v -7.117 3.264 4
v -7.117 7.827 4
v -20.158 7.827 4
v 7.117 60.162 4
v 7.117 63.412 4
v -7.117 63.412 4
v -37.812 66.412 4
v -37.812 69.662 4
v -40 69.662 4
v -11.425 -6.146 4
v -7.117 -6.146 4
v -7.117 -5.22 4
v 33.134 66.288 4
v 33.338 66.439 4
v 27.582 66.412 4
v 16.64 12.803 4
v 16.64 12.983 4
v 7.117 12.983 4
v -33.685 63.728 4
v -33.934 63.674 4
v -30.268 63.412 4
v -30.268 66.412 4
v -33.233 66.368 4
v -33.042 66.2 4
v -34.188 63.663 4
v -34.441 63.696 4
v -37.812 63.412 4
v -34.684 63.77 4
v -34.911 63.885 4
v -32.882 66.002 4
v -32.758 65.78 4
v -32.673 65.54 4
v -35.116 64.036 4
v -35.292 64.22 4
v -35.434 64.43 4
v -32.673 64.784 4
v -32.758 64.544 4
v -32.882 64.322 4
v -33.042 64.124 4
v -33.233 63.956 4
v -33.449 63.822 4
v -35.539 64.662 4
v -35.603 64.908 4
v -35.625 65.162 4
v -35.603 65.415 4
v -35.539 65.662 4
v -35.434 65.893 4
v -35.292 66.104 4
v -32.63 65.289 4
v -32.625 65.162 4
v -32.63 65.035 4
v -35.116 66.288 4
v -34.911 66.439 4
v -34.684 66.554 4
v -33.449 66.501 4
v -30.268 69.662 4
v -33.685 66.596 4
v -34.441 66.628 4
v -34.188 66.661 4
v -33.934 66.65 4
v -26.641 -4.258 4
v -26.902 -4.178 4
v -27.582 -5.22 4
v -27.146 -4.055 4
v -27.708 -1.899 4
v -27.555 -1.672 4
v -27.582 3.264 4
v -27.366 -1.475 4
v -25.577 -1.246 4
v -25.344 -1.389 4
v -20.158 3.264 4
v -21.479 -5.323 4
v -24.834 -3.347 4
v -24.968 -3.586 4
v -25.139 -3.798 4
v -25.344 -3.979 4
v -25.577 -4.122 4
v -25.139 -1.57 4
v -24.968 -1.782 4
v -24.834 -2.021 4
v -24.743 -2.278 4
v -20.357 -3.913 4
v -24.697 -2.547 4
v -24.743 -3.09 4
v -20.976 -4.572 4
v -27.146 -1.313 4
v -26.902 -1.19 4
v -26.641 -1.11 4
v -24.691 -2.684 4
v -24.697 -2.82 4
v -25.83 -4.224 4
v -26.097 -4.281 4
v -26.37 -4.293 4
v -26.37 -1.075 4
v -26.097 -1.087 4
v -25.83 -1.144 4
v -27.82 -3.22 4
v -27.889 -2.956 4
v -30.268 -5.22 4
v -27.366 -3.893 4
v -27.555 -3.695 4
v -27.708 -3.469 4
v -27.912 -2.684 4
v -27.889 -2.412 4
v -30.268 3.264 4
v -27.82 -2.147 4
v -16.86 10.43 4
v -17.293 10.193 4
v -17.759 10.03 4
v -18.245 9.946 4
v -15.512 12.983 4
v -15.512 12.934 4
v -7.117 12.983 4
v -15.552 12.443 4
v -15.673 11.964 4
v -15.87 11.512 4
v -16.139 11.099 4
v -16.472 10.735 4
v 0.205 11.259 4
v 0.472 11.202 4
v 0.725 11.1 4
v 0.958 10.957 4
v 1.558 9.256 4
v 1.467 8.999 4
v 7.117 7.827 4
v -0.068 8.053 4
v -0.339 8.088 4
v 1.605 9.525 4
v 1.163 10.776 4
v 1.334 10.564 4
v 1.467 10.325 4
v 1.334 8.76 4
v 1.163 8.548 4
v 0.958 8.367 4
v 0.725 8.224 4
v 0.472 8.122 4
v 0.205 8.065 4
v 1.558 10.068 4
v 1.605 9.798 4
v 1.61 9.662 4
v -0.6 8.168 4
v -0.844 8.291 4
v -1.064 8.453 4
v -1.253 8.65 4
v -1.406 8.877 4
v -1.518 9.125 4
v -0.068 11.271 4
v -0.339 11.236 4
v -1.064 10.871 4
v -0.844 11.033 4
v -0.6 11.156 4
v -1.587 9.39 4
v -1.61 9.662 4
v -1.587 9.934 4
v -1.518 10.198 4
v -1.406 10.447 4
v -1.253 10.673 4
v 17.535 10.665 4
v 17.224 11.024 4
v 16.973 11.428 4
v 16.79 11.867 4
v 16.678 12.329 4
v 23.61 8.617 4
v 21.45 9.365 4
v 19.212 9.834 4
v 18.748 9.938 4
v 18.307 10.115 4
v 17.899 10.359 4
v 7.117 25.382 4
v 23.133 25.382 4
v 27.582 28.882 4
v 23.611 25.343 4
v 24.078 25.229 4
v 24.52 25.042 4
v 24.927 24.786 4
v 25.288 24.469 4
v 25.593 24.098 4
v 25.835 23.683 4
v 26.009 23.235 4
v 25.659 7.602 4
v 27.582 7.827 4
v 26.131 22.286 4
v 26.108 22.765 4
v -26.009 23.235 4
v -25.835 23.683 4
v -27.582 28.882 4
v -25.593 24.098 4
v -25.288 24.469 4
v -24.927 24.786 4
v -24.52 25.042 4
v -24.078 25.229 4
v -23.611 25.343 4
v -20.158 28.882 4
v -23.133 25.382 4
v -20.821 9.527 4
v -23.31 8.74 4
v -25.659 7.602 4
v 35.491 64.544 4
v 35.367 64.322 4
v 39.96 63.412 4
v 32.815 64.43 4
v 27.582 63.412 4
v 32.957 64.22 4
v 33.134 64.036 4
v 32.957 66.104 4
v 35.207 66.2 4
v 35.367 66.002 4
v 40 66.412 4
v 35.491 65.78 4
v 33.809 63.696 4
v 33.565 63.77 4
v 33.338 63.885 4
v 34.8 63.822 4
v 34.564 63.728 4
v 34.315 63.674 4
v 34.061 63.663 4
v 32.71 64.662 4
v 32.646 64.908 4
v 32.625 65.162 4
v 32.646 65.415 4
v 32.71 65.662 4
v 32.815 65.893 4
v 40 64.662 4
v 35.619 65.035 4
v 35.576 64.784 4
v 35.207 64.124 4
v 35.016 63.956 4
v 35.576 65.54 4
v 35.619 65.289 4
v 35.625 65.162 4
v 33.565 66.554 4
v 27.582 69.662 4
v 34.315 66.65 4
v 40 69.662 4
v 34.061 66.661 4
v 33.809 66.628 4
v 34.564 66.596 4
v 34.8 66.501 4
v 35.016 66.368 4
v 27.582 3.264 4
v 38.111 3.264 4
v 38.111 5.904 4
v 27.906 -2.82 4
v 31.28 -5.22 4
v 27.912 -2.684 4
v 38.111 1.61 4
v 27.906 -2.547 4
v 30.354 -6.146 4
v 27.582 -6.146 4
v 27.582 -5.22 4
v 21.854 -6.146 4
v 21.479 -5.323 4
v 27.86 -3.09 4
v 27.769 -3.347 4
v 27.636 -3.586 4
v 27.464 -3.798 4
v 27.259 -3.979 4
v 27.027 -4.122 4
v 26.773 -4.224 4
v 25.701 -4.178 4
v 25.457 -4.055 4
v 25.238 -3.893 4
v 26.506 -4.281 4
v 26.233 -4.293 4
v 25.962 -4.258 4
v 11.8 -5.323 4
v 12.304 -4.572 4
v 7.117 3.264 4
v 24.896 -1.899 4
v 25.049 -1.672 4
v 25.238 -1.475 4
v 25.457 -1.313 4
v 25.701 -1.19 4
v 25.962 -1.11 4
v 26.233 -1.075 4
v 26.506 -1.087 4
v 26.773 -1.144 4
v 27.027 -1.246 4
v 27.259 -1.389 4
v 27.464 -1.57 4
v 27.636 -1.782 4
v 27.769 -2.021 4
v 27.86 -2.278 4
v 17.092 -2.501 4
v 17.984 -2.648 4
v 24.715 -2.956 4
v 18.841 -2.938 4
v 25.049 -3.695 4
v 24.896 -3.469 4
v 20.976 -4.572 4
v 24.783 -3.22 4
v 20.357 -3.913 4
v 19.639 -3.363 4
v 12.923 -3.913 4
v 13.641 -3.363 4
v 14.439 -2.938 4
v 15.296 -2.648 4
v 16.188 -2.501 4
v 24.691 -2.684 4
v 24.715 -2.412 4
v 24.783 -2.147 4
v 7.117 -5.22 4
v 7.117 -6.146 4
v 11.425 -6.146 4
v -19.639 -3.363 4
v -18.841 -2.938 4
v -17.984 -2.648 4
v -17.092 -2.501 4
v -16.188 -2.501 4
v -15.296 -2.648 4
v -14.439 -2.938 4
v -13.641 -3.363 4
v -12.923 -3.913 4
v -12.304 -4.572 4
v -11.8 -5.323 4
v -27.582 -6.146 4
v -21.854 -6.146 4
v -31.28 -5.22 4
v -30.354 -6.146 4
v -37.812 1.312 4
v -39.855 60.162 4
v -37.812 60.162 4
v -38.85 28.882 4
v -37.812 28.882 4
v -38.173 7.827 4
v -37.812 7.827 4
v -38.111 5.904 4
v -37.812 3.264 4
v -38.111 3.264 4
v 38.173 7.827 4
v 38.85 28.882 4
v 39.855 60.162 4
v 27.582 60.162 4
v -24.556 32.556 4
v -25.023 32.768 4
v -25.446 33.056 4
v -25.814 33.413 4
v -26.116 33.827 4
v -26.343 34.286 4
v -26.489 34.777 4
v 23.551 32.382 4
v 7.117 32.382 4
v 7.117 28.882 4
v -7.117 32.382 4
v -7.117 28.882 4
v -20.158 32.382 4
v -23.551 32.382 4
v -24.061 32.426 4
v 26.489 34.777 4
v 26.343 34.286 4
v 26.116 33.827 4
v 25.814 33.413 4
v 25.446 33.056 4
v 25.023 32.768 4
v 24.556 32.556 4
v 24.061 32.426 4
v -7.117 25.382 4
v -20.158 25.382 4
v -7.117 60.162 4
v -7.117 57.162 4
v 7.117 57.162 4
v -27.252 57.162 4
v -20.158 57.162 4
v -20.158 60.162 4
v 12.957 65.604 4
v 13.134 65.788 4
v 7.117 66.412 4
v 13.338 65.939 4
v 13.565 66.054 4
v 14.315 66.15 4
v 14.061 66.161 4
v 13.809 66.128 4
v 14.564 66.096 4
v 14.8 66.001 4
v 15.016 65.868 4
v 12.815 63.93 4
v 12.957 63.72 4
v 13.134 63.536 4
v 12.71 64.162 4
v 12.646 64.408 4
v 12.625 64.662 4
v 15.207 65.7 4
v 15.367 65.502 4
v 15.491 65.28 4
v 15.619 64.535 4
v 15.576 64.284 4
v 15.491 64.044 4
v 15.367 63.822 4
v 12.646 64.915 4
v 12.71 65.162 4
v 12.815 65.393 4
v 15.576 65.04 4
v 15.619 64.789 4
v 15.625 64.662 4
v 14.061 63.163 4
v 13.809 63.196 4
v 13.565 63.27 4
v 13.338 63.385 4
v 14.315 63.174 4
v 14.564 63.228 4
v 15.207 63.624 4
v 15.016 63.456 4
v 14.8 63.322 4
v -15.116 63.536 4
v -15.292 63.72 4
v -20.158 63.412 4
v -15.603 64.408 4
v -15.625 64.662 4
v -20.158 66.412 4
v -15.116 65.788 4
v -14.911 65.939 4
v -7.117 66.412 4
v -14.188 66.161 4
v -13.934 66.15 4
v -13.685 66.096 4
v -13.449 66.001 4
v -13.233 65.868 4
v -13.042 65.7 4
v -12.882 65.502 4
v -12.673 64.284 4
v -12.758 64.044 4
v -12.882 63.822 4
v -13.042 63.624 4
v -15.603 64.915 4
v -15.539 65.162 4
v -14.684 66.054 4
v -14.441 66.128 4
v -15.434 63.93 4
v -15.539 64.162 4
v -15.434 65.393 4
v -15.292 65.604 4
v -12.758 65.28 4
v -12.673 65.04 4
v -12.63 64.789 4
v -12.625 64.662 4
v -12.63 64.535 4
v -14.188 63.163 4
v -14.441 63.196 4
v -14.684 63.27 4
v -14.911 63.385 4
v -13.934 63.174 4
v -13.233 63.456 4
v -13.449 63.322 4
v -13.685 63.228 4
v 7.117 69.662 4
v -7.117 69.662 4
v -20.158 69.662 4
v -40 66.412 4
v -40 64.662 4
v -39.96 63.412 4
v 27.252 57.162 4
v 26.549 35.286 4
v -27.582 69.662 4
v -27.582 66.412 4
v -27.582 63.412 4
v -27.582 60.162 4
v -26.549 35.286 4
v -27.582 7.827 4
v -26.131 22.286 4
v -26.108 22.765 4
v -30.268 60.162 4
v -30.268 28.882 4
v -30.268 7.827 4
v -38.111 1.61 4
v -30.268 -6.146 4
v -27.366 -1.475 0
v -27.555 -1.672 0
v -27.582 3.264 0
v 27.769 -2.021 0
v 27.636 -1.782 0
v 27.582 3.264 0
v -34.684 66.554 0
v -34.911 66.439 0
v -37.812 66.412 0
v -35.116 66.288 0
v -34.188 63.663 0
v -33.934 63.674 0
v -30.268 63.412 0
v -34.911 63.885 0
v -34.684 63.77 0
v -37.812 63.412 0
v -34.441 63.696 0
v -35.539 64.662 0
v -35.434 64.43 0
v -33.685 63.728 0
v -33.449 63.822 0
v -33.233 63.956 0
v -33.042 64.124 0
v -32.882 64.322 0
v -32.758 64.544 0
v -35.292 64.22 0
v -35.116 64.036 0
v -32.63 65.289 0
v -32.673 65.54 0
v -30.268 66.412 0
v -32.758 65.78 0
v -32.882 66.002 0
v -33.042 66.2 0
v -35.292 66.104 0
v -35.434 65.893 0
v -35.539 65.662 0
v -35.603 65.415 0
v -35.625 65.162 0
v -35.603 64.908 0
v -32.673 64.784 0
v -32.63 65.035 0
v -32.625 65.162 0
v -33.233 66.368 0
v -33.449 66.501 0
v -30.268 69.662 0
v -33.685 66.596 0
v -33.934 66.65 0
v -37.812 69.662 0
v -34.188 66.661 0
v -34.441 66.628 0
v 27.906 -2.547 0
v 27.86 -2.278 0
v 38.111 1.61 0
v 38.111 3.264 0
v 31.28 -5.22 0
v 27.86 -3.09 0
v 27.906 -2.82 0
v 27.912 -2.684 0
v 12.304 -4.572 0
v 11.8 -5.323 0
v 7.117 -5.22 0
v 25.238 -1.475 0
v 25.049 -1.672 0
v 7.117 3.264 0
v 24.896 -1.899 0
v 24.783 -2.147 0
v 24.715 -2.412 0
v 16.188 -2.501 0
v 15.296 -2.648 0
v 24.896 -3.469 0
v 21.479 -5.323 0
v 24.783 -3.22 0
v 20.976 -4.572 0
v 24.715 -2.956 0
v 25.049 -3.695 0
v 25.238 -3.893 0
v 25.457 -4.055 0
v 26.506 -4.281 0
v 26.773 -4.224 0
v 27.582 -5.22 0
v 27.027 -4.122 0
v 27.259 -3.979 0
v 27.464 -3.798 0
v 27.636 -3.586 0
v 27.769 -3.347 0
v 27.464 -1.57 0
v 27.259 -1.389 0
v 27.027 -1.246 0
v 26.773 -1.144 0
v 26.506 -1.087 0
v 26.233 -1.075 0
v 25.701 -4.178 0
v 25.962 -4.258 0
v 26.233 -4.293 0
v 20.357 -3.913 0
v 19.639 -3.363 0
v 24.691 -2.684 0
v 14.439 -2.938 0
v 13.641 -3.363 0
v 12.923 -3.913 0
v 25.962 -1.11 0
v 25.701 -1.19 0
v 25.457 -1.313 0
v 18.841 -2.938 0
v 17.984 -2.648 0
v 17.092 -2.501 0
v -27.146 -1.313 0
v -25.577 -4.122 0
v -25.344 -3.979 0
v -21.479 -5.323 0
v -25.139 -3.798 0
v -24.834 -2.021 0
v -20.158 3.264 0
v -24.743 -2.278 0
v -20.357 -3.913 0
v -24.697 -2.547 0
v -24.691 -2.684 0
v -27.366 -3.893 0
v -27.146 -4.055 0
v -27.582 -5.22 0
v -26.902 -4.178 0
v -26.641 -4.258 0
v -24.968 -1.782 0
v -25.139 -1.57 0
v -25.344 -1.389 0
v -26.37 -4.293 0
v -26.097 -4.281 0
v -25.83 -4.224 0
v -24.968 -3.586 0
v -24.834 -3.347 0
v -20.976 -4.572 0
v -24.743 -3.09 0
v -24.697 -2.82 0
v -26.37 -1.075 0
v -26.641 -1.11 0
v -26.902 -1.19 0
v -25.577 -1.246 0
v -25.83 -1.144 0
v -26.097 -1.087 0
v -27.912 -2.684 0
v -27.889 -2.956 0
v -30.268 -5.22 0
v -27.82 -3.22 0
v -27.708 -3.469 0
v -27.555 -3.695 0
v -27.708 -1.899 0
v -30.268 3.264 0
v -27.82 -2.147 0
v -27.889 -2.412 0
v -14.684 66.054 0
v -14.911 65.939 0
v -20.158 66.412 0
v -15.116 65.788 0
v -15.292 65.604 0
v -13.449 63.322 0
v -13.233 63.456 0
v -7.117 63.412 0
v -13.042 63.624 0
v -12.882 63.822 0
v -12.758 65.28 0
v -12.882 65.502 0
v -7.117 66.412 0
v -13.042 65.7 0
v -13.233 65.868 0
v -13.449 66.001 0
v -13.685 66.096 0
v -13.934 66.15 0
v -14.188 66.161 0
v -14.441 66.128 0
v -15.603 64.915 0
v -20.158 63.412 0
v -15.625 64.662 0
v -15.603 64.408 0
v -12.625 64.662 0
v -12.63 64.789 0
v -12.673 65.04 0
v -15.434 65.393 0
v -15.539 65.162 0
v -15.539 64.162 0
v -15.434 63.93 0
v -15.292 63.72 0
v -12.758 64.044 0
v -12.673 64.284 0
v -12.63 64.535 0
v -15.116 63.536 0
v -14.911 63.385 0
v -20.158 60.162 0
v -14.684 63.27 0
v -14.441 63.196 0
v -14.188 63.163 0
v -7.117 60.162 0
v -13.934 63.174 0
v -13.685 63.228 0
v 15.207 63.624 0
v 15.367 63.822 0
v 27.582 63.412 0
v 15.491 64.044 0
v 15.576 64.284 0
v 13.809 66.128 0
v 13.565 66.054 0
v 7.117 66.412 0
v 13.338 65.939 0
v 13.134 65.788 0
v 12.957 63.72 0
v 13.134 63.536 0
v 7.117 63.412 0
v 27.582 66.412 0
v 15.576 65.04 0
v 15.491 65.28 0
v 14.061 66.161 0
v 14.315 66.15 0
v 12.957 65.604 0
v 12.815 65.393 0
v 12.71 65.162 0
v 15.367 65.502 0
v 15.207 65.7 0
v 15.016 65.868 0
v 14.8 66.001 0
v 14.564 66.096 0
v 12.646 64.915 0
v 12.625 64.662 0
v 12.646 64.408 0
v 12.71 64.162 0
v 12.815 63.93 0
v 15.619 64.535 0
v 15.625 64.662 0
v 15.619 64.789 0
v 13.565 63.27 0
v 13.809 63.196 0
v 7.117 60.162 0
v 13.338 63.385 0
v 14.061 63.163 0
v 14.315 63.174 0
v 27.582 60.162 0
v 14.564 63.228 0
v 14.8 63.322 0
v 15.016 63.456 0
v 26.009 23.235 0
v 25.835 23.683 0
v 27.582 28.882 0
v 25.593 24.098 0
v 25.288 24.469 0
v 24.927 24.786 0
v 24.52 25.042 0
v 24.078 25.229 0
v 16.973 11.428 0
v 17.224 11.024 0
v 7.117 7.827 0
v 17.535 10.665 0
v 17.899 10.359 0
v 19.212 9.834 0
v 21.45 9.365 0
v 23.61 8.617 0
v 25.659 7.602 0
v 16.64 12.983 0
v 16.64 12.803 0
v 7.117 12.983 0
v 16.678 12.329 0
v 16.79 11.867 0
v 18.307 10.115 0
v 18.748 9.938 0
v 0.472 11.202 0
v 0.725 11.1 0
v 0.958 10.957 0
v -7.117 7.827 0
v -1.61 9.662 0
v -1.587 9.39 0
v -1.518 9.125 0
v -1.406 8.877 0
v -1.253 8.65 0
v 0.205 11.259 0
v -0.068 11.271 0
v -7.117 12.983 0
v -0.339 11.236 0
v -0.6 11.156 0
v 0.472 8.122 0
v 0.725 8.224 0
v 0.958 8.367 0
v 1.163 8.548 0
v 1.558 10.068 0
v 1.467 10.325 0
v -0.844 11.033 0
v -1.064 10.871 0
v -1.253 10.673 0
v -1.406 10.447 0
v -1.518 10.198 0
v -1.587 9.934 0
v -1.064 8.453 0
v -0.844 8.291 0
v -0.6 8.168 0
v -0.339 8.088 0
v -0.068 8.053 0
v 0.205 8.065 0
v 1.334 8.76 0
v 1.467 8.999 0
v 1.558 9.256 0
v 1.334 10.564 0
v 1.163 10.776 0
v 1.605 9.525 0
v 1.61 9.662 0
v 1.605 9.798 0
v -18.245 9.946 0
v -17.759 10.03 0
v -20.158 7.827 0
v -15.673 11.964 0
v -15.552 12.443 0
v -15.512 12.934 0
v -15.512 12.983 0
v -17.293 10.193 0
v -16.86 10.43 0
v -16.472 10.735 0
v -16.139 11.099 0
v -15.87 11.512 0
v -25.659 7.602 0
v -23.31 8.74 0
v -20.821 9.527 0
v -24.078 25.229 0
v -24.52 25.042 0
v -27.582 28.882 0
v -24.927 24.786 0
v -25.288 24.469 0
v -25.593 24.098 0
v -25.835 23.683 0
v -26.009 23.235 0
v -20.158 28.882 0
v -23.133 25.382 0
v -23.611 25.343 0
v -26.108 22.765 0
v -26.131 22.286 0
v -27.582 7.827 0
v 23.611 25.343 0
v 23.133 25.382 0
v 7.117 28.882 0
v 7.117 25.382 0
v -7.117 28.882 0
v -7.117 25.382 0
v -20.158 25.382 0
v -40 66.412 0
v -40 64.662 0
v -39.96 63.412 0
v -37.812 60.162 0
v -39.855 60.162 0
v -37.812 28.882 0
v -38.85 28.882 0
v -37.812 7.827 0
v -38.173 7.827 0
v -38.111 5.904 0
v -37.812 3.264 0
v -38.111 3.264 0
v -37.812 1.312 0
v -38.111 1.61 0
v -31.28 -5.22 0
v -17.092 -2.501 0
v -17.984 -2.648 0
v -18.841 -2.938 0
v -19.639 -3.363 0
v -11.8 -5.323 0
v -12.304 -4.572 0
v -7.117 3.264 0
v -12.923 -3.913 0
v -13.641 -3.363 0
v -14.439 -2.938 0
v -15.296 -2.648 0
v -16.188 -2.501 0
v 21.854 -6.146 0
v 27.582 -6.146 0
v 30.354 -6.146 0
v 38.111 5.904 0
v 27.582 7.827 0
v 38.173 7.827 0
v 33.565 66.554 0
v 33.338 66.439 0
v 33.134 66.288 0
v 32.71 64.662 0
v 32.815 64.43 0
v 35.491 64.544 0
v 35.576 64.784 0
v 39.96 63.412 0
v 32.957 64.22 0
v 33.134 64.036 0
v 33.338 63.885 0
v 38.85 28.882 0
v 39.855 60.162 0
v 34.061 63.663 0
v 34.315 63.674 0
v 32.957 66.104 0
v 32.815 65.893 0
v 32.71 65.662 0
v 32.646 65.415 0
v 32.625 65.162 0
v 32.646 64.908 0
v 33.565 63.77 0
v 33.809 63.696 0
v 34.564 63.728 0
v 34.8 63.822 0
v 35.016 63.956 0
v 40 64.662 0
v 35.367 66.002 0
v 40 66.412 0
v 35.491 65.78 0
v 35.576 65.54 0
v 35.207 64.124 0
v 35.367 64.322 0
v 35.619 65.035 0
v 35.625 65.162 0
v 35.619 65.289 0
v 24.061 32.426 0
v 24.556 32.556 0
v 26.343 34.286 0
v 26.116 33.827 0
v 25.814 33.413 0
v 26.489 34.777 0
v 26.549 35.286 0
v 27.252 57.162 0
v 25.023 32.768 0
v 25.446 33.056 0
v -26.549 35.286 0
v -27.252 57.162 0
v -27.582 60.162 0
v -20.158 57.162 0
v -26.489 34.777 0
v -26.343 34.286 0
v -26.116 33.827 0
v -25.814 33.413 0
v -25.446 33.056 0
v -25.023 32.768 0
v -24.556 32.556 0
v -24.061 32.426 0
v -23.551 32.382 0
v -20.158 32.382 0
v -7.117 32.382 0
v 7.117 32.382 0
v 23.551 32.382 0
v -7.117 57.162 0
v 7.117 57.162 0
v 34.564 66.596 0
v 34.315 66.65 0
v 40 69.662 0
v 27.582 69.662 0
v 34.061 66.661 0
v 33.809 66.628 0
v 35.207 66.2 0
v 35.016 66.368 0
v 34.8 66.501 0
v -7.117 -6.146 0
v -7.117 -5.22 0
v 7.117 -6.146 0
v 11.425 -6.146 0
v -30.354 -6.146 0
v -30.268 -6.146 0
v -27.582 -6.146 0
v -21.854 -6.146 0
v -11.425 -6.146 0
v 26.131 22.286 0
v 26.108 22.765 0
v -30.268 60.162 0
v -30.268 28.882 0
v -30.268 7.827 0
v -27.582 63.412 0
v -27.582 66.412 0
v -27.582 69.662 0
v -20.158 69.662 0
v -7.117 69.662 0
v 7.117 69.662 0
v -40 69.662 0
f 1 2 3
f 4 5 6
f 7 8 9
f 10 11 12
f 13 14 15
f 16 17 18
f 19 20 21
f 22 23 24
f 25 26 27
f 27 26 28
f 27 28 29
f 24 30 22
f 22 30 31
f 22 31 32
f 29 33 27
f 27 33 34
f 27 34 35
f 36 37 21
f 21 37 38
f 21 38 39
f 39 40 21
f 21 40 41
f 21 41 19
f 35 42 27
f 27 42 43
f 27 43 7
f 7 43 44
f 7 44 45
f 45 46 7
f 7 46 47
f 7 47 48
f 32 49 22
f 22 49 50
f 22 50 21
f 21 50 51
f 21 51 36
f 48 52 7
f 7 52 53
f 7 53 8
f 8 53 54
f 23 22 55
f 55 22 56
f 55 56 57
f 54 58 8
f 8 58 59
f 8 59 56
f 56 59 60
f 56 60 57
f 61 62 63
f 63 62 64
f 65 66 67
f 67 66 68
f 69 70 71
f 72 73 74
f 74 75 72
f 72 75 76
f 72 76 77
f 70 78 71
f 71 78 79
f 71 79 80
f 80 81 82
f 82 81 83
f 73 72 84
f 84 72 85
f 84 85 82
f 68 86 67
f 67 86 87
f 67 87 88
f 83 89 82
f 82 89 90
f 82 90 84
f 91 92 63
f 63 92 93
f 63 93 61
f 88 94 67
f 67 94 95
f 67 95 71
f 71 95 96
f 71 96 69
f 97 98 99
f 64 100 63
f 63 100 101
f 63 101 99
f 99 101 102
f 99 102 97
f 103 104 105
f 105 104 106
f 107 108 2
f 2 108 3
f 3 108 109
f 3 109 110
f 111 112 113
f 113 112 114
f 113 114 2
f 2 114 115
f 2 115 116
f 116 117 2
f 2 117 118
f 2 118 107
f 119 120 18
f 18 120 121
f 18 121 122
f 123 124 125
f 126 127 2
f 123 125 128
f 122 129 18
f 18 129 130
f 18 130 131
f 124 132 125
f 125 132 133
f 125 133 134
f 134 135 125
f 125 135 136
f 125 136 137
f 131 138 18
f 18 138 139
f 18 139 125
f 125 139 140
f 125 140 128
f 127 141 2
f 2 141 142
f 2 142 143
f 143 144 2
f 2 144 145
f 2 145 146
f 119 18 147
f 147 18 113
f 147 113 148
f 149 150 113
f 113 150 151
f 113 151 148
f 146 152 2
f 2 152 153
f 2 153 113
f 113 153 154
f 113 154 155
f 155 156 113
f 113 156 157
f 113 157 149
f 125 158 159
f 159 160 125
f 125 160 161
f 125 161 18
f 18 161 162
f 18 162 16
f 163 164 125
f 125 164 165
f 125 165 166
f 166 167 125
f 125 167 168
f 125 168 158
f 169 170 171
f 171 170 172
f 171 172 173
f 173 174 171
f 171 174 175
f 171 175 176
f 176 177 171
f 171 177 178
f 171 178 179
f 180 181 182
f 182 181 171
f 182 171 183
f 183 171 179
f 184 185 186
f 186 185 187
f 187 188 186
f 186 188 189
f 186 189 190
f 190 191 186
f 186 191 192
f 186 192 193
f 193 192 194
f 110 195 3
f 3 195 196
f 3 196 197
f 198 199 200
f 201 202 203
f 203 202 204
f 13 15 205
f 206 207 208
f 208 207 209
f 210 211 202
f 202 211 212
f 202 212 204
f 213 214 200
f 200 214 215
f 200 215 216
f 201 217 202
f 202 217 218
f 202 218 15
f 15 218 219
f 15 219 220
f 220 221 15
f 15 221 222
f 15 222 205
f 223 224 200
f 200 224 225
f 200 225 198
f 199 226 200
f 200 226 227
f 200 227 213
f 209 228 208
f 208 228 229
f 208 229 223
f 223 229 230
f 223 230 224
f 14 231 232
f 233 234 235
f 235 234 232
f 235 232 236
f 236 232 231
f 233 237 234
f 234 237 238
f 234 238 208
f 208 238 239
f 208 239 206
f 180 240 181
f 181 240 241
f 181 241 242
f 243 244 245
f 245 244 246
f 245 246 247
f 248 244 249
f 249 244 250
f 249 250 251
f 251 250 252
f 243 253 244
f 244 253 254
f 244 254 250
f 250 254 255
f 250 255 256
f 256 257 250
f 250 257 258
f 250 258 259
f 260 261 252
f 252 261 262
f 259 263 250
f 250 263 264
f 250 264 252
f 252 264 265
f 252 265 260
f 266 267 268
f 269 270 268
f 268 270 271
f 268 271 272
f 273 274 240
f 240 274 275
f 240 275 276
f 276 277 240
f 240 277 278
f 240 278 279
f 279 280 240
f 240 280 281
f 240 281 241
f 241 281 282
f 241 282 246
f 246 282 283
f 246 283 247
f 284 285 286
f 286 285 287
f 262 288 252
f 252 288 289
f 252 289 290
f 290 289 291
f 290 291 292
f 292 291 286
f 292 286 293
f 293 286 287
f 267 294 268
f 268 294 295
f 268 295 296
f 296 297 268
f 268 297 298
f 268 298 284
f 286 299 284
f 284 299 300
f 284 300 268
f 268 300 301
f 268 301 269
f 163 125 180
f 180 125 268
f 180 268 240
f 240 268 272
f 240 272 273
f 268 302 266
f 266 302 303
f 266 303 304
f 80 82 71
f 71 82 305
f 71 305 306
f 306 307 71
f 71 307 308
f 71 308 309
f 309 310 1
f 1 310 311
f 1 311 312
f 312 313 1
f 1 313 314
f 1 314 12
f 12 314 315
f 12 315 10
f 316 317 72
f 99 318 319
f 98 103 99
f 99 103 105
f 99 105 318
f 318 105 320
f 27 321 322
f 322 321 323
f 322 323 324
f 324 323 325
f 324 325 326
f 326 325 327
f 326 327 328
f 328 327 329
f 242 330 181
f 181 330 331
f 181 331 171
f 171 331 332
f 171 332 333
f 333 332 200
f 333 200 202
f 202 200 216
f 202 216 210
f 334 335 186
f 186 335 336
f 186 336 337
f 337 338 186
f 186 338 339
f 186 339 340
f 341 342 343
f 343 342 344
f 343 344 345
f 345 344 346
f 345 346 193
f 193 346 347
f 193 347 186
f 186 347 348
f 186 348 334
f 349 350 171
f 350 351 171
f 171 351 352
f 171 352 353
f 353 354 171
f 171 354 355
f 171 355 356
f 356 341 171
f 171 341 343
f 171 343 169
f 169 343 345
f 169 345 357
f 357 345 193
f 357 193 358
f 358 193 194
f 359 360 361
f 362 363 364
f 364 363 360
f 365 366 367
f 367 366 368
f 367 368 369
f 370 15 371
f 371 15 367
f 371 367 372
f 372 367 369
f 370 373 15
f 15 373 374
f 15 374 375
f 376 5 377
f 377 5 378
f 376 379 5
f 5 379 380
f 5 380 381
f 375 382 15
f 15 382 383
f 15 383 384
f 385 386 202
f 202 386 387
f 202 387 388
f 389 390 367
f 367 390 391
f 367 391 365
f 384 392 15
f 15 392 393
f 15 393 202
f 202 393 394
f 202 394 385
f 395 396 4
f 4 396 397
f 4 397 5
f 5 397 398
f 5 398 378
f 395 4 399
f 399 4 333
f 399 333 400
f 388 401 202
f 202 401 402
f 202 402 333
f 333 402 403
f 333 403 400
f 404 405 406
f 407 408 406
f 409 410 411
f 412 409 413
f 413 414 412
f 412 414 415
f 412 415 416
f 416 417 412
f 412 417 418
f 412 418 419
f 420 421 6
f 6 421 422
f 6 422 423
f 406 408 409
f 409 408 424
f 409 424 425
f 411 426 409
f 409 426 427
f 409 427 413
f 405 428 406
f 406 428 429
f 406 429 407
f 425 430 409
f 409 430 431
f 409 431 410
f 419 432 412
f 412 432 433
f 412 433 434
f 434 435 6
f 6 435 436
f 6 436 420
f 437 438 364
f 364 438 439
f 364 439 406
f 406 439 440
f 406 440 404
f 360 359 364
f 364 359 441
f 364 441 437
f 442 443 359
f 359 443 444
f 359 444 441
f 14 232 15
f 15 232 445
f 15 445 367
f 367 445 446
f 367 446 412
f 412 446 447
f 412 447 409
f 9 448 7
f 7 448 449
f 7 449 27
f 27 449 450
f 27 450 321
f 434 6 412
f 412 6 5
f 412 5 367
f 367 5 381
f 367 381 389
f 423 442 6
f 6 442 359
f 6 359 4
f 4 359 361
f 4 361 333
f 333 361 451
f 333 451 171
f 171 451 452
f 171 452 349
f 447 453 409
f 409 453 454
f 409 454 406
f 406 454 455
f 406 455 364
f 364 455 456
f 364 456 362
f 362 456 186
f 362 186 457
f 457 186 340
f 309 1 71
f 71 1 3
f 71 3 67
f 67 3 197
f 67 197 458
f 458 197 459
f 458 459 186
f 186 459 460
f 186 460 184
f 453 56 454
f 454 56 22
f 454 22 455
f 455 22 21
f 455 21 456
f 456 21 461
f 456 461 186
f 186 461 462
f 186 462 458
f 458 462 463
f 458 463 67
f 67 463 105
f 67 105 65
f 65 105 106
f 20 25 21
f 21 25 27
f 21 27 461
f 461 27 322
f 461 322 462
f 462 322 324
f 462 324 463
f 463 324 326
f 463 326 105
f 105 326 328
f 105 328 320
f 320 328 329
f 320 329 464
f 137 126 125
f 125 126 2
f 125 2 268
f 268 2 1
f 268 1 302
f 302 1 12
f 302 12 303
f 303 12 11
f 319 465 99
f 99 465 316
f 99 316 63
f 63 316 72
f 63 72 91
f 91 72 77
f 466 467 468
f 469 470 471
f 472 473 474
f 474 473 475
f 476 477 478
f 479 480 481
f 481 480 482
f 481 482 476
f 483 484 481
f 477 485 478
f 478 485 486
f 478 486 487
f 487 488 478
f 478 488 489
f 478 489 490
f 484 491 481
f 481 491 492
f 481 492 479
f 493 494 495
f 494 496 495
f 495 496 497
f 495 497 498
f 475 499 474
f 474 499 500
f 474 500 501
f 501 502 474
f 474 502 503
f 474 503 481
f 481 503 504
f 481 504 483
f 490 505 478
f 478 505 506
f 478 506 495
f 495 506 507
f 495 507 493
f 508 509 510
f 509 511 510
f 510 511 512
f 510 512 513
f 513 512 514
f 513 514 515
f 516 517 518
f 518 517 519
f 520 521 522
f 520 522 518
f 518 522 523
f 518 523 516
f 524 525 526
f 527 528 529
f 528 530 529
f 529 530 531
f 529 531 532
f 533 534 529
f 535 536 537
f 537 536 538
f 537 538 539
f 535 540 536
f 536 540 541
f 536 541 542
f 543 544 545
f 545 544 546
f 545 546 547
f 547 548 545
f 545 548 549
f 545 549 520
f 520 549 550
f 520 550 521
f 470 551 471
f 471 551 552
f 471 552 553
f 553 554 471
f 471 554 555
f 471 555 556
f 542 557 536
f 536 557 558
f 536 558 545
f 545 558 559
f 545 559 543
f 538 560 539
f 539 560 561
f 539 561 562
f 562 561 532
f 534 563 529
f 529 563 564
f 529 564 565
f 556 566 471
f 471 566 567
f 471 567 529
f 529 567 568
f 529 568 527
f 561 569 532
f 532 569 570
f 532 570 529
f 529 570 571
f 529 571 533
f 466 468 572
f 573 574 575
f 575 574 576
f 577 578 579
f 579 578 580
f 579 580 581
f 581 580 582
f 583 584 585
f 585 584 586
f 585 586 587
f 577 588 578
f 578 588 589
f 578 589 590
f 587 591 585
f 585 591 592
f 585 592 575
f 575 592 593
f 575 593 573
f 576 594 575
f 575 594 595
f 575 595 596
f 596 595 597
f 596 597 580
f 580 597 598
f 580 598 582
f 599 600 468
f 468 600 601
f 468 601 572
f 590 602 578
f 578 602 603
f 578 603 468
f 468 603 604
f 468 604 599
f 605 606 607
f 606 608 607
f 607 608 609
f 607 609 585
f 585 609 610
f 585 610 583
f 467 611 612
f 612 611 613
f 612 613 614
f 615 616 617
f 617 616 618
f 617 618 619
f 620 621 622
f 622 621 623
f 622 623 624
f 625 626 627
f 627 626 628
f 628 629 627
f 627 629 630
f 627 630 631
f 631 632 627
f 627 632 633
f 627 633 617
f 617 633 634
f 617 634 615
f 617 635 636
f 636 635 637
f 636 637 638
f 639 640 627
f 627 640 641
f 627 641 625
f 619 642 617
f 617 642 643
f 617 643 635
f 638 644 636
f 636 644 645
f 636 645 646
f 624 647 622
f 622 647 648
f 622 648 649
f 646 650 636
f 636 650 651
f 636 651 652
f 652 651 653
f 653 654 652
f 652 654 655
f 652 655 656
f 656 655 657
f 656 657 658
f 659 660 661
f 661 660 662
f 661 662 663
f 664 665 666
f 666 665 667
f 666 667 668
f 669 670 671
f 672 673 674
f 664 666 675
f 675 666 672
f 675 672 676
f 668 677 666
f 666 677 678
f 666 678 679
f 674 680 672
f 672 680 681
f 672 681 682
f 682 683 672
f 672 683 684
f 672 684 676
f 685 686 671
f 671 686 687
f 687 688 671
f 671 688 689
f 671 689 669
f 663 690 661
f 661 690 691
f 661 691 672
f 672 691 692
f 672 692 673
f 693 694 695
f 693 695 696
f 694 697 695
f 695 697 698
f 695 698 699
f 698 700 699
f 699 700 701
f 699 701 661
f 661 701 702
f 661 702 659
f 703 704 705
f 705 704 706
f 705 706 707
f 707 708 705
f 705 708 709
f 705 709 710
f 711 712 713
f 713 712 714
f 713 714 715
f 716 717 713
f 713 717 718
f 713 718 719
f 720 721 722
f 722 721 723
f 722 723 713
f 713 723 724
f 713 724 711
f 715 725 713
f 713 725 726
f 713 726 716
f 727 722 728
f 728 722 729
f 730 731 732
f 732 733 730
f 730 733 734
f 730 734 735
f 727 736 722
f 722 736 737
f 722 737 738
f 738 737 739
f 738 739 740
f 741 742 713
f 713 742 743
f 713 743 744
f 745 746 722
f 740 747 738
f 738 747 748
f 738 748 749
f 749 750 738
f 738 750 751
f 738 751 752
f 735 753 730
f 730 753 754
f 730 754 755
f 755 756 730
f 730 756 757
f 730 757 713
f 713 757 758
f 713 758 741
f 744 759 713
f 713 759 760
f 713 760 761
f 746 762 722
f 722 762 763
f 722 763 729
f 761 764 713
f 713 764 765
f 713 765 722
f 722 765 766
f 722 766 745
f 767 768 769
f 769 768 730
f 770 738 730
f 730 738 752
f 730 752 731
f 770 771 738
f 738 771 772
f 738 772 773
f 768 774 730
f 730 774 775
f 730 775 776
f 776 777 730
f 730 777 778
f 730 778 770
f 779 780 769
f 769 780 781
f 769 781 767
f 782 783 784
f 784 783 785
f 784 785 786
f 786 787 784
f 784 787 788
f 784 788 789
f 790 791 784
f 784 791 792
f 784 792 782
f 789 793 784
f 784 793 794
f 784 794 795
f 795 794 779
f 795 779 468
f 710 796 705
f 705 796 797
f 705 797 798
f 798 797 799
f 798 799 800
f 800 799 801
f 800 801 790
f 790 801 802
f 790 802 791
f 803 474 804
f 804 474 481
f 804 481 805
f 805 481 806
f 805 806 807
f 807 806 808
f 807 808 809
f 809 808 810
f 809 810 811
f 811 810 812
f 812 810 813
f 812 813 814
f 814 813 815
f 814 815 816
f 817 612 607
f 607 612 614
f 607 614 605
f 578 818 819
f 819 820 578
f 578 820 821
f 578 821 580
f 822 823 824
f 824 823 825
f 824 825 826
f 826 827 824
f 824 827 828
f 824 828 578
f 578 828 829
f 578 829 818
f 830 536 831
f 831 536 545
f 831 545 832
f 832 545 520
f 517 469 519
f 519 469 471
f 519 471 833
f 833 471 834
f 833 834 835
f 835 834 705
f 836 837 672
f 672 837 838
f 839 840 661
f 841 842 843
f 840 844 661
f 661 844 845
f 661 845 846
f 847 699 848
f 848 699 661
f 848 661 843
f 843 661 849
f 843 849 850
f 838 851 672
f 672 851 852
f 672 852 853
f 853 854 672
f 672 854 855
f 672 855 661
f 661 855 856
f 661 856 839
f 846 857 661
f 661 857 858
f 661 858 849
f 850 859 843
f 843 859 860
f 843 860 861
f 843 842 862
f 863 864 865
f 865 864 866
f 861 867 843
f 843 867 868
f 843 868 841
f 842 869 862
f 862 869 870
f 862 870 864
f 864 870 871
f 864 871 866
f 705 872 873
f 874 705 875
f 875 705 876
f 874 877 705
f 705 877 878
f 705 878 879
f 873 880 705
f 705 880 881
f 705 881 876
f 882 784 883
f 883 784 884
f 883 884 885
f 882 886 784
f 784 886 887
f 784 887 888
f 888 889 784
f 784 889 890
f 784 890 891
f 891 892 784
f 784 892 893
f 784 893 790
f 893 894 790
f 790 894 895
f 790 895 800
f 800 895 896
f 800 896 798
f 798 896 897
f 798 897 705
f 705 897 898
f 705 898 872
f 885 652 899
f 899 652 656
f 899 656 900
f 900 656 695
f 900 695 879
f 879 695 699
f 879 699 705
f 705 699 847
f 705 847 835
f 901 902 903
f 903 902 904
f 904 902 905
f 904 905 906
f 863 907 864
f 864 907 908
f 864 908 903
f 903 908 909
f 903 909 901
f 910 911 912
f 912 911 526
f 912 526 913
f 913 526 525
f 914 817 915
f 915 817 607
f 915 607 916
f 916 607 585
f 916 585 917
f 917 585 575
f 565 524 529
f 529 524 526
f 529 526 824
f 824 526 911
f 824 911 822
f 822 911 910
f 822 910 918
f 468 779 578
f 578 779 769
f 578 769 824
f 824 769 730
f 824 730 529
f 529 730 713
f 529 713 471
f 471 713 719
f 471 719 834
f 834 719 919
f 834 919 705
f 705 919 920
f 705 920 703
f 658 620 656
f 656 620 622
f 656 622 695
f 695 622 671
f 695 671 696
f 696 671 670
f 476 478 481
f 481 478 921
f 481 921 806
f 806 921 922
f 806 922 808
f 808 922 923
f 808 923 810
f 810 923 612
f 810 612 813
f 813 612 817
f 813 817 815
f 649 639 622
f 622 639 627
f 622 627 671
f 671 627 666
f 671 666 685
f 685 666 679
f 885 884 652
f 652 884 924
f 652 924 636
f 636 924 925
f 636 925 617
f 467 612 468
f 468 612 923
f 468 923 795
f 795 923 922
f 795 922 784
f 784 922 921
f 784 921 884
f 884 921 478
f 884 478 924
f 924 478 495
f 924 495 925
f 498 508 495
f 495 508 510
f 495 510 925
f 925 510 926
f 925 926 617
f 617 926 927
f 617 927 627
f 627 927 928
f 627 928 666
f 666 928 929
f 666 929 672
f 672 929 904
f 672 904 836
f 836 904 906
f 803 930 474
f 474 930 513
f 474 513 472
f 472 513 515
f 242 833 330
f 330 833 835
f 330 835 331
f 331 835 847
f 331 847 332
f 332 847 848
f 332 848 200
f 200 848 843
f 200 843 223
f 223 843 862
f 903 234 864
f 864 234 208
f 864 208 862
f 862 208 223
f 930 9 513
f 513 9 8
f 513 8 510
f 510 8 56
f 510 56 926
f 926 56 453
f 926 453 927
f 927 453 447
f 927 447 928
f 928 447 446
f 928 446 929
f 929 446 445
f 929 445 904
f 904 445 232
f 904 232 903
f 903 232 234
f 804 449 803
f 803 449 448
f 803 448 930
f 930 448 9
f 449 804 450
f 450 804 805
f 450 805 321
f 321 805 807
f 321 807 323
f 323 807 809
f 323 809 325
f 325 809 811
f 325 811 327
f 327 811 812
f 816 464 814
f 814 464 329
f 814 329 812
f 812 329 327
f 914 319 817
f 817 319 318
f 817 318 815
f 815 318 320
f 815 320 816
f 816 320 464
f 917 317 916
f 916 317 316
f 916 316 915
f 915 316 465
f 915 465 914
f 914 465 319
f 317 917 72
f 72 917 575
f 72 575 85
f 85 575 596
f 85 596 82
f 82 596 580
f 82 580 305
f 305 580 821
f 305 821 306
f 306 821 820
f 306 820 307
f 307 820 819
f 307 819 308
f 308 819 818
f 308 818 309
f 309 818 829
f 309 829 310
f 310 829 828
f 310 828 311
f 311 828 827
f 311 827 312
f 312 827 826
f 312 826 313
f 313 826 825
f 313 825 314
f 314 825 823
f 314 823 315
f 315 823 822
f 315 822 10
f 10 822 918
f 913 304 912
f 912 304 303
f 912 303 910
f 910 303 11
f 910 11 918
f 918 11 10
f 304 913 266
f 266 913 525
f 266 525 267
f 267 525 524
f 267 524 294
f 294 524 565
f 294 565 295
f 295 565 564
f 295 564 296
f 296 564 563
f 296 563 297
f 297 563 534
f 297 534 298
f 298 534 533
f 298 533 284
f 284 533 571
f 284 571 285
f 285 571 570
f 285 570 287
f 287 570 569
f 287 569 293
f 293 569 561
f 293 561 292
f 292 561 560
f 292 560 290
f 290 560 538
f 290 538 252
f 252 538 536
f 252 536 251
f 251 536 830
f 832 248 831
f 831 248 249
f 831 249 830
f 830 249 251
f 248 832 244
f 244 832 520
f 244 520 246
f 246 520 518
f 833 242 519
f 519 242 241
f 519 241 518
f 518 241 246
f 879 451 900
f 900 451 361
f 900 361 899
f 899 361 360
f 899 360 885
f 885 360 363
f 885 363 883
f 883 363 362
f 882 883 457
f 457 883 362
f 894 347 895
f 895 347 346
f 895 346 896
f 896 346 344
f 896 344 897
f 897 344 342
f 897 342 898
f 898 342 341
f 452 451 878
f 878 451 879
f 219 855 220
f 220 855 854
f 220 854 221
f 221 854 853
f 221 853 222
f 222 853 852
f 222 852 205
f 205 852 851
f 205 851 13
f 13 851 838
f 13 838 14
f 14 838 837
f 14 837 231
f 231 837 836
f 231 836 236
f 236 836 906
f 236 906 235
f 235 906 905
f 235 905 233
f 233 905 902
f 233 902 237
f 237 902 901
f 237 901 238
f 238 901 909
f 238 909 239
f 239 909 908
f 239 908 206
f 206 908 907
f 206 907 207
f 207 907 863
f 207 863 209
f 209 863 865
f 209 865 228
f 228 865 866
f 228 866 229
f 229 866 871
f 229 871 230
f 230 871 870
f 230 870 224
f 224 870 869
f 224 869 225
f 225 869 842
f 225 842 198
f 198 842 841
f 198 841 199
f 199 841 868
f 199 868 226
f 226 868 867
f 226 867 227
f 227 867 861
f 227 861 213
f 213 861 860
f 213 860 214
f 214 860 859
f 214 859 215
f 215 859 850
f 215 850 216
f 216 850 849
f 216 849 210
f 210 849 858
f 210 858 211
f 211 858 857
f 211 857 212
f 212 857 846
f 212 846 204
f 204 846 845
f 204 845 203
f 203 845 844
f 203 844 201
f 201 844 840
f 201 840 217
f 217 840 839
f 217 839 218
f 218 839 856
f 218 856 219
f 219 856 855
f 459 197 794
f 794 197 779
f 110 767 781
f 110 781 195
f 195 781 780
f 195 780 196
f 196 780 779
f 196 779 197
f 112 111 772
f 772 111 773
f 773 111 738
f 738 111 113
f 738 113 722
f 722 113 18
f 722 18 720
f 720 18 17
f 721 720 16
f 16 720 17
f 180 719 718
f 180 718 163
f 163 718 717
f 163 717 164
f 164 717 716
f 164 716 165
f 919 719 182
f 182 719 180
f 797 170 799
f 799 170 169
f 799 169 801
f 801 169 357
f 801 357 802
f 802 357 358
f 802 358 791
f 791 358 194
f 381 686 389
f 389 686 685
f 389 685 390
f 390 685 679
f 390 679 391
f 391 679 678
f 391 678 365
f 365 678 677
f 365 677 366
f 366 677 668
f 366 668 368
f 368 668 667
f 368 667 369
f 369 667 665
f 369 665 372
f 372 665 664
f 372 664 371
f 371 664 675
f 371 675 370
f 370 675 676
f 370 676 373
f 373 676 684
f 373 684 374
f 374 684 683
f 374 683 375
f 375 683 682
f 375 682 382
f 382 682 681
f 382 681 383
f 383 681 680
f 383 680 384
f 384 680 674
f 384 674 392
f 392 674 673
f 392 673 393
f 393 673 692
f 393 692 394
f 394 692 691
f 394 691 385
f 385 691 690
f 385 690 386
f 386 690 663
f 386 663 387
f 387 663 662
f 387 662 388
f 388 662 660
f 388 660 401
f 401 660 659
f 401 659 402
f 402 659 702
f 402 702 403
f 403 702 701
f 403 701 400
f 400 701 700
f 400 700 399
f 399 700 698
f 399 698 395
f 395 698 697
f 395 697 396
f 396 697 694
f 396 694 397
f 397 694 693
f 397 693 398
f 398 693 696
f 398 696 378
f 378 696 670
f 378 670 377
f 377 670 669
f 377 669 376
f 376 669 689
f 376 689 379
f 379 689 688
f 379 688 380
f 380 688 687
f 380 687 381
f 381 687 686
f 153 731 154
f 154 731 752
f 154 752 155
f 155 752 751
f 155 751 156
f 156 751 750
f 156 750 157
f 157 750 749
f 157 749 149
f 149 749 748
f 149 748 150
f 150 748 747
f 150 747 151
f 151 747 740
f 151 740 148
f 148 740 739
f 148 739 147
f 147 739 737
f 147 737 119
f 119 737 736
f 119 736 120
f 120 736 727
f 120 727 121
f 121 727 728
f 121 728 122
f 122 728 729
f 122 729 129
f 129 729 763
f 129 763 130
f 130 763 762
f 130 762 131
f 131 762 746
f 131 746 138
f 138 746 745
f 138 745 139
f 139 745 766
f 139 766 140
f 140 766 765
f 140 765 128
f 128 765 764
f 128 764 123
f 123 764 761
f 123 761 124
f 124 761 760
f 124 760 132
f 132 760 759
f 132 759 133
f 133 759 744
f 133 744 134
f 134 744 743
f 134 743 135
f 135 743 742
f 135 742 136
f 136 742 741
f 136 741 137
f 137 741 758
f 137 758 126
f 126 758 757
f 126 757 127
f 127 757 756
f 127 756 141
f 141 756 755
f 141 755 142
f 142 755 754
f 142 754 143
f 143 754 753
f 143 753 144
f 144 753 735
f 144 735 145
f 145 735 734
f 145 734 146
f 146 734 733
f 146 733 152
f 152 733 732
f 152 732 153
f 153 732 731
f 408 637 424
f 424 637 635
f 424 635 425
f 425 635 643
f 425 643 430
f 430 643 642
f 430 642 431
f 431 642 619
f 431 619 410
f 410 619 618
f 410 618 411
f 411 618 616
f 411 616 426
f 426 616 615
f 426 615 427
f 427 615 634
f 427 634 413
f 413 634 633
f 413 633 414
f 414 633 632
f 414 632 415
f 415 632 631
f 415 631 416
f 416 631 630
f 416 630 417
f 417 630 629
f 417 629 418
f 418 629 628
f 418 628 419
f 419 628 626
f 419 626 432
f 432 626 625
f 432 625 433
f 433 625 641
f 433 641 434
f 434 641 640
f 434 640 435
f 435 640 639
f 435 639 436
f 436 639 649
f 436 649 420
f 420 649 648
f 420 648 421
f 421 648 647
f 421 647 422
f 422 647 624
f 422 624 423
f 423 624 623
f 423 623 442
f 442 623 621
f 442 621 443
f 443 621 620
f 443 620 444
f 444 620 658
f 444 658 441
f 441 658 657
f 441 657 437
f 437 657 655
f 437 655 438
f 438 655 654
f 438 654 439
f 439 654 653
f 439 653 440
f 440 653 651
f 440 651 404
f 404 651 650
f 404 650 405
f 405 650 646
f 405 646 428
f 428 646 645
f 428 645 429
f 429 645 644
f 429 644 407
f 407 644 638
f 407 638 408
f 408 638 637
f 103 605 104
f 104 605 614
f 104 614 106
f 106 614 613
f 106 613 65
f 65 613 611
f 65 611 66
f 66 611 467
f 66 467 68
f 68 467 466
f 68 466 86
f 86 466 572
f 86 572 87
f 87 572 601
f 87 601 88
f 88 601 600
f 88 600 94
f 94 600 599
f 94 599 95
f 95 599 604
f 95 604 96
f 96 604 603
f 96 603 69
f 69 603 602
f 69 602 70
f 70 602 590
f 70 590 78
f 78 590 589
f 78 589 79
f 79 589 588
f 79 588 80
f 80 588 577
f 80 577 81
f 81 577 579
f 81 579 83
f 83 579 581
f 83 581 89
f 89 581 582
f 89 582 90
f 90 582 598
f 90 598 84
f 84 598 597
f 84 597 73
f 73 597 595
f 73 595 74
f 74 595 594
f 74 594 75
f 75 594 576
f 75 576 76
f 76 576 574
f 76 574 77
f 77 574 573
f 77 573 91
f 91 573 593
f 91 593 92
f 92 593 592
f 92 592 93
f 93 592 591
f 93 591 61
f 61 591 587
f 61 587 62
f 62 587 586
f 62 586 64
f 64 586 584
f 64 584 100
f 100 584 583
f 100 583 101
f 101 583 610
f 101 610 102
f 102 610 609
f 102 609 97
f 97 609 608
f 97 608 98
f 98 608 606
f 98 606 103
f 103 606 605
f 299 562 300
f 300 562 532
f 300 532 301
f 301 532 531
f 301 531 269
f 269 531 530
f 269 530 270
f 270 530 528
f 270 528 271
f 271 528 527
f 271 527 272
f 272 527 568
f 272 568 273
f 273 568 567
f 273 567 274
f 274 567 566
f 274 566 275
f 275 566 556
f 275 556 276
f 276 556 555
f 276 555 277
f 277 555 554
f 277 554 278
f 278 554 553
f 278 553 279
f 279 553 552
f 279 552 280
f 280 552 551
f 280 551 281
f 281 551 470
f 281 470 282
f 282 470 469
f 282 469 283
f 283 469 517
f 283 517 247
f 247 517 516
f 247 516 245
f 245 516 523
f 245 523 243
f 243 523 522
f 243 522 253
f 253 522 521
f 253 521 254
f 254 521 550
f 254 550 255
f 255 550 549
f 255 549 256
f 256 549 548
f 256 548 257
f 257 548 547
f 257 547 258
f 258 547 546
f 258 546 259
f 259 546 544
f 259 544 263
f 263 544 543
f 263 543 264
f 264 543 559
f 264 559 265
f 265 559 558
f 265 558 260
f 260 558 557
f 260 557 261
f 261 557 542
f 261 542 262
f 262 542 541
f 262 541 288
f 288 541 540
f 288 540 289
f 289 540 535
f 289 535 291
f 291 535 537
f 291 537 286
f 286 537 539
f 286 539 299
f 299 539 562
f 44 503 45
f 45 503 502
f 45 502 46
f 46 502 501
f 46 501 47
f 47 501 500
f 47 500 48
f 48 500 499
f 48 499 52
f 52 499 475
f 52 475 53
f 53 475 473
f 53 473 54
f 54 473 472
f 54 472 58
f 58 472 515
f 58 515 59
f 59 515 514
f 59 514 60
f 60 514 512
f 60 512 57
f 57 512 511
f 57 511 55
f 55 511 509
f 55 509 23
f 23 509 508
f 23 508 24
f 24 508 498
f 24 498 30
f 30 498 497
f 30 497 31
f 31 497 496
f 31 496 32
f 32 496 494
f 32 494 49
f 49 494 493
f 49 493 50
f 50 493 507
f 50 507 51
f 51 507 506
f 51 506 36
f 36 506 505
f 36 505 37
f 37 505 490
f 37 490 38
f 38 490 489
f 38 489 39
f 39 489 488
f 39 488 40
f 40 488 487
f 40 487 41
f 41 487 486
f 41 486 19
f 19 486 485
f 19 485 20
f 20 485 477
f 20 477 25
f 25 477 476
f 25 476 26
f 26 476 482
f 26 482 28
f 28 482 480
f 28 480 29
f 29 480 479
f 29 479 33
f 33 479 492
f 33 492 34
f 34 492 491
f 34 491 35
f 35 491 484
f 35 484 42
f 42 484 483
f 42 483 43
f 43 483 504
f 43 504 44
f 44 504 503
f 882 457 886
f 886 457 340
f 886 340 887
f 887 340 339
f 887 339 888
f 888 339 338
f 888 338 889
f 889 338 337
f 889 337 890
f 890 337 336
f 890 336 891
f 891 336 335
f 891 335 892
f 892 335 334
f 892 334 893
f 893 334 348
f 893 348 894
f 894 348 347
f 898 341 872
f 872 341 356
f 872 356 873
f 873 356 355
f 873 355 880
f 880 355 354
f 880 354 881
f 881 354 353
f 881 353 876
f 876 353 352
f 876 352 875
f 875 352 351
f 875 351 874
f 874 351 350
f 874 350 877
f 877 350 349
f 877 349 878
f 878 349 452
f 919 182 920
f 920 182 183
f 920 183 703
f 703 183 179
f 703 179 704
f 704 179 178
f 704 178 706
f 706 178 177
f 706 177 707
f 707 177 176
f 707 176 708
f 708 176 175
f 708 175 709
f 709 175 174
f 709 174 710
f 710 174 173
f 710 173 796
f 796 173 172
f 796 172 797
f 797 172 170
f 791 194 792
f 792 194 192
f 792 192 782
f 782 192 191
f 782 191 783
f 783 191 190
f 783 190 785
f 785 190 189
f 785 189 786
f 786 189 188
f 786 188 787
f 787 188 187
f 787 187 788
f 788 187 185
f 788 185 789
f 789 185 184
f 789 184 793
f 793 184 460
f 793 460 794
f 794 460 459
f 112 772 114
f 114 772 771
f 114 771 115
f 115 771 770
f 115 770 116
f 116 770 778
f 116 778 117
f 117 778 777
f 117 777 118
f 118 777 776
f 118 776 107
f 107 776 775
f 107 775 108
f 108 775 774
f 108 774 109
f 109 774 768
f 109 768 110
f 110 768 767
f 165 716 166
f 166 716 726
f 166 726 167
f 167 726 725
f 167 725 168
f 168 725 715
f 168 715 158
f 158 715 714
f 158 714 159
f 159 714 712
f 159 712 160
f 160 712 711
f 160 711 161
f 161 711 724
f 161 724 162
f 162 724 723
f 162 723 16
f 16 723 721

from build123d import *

# Parameters (mm, degrees)
SKETCH1_R           = 1.610311209
SKETCH1_R_2         = 1.5
BOSS_EXTRUDE1_DEPTH = 4
FILLET1_R           = 3


with BuildPart() as part:
    # Sketch1 → Boss-Extrude1 (new body)
    with BuildSketch(Plane.XY):
        with BuildLine():
            Line((-38.110698604, 1.610311209), (-30.354366282, -6.146021113))
            Line((-30.354366282, -6.146021113), (-21.854366282, -6.146021113))
            ThreePointArc((-21.854366282, -6.146021113), (-16.639882489, -2.482124138), (-11.425398696, -6.146021113))
            Line((-11.425398696, -6.146021113), (11.425398696, -6.146021113))
            ThreePointArc((11.425398696, -6.146021113), (16.639882489, -2.482124138), (21.854366282, -6.146021113))
            Line((21.854366282, -6.146021113), (30.354366282, -6.146021113))
            Line((30.354366282, -6.146021113), (38.110698604, 1.610311209))
            Line((38.110698604, 1.610311209), (38.110698604, 5.904474432))
            Line((38.110698604, 5.904474432), (40, 64.661867252))
            Line((40, 64.661867252), (40, 69.661867252))
            Line((40, 69.661867252), (-40, 69.661867252))
            Line((-40, 69.661867252), (-40, 64.661867252))
            Line((-40, 64.661867252), (-38.110698604, 5.904474432))
            Line((-38.110698604, 5.904474432), (-38.110698604, 1.610311209))
        make_face()
        with Locations((0, 9.661867252)):
            Circle(SKETCH1_R, mode=Mode.SUBTRACT)
        with Locations((-26.301749741, -2.683852014)):
            Circle(SKETCH1_R, mode=Mode.SUBTRACT)
        with Locations((26.301749741, -2.683852014)):
            Circle(SKETCH1_R, mode=Mode.SUBTRACT)
        with Locations((34.124535685, 65.161867252)):
            Circle(SKETCH1_R_2, mode=Mode.SUBTRACT)
        with Locations((14.124535685, 64.661867252)):
            Circle(SKETCH1_R_2, mode=Mode.SUBTRACT)
        with Locations((-14.124535685, 64.661867252)):
            Circle(SKETCH1_R_2, mode=Mode.SUBTRACT)
        with Locations((-34.124535685, 65.161867252)):
            Circle(SKETCH1_R_2, mode=Mode.SUBTRACT)
        Polygon((-27.252382744, 57.161867252), (-26.45560174, 32.381927681), (26.45560174, 32.381927681), (27.252382744, 57.161867252), align=None, mode=Mode.SUBTRACT)
        with BuildLine():
            Line((25.658820737, 7.60198811), (26.230521812, 25.381927681))
            Line((26.230521812, 25.381927681), (-26.230521812, 25.381927681))
            Line((-26.230521812, 25.381927681), (-25.658820737, 7.60198811))
            ThreePointArc((-25.658820737, 7.60198811), (-20.760848223, 9.540954041), (-15.511590599, 9.98256249))
            Line((-15.511590599, 9.98256249), (-15.511590599, 12.98256249))
            Line((-15.511590599, 12.98256249), (16.639882489, 12.98256249))
            Line((16.639882489, 12.98256249), (16.639882489, 10.017875862))
            ThreePointArc((16.639882489, 10.017875862), (21.308334072, 9.403441757), (25.658820737, 7.60198811))
        make_face(mode=Mode.SUBTRACT)
    extrude(amount=BOSS_EXTRUDE1_DEPTH)

    # Fillet1
    fillet1_edges = [part.edges().sort_by_distance(p)[0] for p in [
        (-26.45560174, 32.381927681, 2),
        (26.45560174, 32.381927681, 2),
        (-26.230521812, 25.381927681, 2),
        (-15.511590599, 9.98256249, 2),
        (16.639882489, 10.017875862, 2),
        (26.230521812, 25.381927681, 2),
    ]]
    fillet(fillet1_edges, radius=FILLET1_R)


solid = part.part
